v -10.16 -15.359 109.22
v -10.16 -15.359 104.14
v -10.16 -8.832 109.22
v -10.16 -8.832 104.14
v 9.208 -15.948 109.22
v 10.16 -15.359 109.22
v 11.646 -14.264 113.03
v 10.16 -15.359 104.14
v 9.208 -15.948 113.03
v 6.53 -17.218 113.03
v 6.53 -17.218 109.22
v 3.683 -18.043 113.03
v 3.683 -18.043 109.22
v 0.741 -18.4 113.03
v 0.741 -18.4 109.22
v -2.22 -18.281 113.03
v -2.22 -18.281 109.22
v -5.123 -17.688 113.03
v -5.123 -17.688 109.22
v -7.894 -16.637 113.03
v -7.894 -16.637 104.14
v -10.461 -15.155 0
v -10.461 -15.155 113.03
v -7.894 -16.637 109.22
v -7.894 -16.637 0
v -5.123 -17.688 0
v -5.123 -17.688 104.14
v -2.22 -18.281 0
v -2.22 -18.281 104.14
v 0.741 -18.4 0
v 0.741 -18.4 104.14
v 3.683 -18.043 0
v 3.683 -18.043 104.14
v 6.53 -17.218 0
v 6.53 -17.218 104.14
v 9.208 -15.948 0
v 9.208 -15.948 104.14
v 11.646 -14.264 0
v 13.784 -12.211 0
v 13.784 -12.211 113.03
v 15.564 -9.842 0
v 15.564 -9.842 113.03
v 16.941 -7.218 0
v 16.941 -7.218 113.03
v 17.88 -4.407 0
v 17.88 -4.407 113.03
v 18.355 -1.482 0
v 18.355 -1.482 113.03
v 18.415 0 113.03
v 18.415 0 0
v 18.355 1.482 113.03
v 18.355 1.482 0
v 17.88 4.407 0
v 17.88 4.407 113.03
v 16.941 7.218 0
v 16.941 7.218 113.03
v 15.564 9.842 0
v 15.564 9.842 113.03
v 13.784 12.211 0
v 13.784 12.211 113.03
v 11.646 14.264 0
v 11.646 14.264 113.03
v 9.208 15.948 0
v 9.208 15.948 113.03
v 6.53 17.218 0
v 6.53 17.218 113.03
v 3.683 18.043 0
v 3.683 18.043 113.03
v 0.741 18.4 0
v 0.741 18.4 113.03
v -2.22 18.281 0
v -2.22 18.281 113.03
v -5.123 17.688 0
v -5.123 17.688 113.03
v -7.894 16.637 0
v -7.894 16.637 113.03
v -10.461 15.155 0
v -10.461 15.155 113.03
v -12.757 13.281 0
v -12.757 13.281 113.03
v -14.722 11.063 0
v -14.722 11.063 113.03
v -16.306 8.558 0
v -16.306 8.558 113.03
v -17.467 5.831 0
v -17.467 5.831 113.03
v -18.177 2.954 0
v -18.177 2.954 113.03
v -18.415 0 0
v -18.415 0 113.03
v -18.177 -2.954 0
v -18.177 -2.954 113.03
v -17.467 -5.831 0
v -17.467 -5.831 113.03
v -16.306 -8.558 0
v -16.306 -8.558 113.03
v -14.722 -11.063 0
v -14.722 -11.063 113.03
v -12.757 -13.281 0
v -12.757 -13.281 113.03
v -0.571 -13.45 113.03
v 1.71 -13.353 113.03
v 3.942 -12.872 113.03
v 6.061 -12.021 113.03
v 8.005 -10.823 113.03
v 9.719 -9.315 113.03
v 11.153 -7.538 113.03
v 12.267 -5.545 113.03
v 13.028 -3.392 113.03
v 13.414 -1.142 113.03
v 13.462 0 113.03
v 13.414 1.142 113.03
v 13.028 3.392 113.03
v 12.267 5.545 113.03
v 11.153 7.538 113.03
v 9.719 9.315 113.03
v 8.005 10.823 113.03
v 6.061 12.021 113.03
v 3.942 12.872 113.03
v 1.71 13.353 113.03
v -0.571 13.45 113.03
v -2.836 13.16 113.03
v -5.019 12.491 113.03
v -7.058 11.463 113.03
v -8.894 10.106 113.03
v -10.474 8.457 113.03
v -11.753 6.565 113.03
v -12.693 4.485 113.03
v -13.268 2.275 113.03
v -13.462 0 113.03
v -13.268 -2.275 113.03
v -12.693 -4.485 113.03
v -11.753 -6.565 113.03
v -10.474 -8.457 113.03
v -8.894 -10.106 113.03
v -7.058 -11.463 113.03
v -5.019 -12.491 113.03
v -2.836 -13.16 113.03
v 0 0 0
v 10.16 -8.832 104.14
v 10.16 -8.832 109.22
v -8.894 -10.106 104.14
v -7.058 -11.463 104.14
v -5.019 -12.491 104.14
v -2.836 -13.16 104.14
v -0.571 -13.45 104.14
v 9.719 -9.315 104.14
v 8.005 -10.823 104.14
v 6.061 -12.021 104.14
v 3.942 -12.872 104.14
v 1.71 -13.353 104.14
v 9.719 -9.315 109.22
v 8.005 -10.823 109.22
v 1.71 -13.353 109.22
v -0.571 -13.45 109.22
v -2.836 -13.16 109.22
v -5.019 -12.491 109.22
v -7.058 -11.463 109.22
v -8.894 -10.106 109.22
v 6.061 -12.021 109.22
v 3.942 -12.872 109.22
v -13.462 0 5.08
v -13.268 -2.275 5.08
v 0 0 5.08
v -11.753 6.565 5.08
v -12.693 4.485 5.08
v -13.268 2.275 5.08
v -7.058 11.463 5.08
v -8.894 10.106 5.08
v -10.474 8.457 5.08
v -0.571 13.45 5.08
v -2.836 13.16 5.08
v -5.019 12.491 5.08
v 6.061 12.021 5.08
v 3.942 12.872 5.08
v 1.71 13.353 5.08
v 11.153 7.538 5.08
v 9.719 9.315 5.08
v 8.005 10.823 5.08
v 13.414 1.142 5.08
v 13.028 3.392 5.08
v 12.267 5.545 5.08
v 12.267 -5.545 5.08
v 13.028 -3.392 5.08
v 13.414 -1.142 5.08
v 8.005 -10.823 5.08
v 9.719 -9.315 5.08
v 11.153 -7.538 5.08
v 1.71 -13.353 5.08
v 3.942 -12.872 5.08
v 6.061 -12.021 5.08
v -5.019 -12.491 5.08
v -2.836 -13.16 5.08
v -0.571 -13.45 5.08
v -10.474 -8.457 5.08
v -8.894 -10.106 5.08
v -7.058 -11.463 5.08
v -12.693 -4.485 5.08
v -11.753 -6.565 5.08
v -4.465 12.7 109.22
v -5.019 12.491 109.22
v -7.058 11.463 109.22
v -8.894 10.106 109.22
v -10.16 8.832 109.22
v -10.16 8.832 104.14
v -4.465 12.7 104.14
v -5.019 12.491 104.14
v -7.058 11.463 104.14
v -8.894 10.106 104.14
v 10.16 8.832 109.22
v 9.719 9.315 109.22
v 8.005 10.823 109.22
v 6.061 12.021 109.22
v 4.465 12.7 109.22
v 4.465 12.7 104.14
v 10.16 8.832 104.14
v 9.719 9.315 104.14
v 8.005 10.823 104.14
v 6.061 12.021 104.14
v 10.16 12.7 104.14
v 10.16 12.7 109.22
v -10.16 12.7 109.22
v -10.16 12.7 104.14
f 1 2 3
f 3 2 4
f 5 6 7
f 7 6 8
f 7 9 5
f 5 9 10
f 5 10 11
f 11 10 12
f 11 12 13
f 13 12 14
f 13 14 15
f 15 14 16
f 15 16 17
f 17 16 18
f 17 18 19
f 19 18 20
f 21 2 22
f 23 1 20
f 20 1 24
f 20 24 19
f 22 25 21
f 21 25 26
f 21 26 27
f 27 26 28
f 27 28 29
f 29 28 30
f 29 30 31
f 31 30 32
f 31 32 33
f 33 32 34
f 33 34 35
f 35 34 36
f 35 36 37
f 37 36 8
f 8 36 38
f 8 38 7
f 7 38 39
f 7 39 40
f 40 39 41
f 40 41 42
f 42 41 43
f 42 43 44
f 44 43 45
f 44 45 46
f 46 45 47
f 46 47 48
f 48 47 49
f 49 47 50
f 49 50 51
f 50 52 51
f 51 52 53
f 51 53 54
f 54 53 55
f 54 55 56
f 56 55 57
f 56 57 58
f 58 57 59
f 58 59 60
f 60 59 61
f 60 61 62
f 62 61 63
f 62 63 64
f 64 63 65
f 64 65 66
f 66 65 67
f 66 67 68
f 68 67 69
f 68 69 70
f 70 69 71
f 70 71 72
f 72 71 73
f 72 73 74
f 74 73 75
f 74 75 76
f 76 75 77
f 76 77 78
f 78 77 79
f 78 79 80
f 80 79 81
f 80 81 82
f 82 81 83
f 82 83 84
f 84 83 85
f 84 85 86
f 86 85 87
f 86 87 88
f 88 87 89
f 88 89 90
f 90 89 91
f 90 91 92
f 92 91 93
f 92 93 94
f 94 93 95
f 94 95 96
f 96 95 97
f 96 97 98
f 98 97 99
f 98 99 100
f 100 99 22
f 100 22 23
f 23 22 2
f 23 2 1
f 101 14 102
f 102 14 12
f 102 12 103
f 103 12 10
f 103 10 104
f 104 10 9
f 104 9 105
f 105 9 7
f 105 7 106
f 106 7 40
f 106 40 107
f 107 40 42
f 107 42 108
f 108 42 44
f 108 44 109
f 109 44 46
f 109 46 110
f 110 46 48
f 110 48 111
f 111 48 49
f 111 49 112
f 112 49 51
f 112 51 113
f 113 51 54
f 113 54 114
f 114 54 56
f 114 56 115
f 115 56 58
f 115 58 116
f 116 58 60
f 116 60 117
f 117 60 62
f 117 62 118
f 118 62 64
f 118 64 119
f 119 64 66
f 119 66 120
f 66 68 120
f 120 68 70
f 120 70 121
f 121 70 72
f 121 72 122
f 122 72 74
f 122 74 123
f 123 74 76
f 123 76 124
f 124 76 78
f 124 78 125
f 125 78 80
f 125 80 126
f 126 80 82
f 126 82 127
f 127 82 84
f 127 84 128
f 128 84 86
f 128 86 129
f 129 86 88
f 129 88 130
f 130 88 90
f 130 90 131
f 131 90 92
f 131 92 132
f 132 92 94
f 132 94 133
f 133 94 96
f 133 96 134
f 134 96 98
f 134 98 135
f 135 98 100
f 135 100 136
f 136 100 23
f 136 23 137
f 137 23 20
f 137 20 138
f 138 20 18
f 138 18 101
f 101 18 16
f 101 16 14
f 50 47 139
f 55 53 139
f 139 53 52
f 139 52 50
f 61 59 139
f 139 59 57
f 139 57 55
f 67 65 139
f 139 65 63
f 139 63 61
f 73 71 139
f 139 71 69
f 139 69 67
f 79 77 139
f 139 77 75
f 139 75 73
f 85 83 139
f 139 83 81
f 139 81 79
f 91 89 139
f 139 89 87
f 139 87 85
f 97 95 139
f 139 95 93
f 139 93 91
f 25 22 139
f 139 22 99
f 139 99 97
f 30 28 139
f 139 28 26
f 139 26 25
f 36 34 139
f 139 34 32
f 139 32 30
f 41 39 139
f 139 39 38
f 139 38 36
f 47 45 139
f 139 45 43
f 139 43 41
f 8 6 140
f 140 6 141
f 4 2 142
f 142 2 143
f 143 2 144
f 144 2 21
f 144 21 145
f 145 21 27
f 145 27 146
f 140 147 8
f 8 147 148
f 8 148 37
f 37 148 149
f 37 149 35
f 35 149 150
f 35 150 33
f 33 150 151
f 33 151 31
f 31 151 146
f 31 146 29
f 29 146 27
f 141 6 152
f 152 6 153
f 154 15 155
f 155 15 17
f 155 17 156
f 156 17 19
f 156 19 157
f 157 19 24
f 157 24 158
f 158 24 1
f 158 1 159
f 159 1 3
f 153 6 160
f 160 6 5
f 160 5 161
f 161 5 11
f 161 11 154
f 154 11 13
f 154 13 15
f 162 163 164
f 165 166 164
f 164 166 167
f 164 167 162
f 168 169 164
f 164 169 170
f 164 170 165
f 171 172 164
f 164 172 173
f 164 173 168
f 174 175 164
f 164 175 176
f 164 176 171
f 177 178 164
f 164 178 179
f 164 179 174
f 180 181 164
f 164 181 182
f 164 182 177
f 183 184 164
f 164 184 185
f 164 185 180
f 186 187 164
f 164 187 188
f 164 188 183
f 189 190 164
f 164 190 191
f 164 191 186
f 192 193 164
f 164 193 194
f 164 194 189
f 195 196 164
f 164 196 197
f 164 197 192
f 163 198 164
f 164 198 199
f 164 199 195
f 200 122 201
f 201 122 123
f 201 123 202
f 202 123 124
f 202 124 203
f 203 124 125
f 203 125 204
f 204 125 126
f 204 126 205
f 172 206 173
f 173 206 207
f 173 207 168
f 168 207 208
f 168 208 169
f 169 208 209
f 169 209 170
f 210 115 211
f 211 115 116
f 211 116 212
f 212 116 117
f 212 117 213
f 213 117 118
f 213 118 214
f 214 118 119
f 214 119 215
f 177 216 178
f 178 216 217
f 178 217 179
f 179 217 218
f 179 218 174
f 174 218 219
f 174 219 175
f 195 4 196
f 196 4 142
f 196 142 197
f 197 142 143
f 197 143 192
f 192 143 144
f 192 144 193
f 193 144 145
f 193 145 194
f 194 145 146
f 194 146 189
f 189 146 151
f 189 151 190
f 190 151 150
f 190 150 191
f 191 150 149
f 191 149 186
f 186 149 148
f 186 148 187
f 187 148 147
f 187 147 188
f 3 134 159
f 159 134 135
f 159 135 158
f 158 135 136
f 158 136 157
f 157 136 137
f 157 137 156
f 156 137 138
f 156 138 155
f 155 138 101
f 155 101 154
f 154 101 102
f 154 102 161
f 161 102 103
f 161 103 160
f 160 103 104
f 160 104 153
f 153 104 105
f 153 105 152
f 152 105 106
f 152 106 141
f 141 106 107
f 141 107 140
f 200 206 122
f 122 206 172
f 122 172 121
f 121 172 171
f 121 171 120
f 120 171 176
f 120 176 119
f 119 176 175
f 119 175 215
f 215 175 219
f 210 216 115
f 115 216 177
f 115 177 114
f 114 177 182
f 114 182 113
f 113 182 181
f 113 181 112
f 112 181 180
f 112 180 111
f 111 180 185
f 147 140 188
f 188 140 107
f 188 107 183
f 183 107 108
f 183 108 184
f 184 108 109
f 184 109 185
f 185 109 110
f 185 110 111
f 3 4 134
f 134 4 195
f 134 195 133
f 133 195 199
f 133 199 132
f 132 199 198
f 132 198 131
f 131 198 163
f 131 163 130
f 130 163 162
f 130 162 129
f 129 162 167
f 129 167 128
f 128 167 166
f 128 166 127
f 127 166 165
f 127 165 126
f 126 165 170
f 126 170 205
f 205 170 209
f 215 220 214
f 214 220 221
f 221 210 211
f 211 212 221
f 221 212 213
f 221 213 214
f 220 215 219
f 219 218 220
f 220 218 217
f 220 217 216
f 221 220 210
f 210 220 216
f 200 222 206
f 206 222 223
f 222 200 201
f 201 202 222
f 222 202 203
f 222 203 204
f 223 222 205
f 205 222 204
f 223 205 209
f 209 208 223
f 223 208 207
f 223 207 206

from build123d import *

# Parameters (mm, degrees)
SKETCH1_R               = 18.415
BOSS_EXTRUDE2_DEPTH     = 113.03
SKETCH4_W               = 20.32
SKETCH4_H               = 5.08
CUT_EXTRUDE2_DEPTH      = 12.7
CUT_EXTRUDE2_DEPTH_BACK = 22.86
CUT_EXTRUDE3_START      = -5.08
SKETCH5_R               = 13.462
CUT_EXTRUDE3_DEPTH      = 107.95


with BuildPart() as part:
    # Sketch1 → Boss-Extrude2 (new body)
    with BuildSketch(Plane.XY):
        Circle(SKETCH1_R)
    extrude(amount=BOSS_EXTRUDE2_DEPTH)

    # Sketch4 → Cut-Extrude2 (cut, two sides)
    with BuildSketch(Plane(origin=(0, 0, 0), x_dir=(1, 0, 0), z_dir=(0, 1, 0))) as cut_extrude2_sk:
        with Locations((0, -106.68)):
            Rectangle(SKETCH4_W, SKETCH4_H)
    extrude(amount=CUT_EXTRUDE2_DEPTH, mode=Mode.SUBTRACT)
    extrude(cut_extrude2_sk.sketch, amount=-CUT_EXTRUDE2_DEPTH_BACK, mode=Mode.SUBTRACT)

    # Sketch5 → Cut-Extrude3 (cut)
    with BuildSketch(Plane(origin=(0, 0, 0), x_dir=(-1, 0, 0), z_dir=(0, 0, -1)).offset(CUT_EXTRUDE3_START)):
        Circle(SKETCH5_R)
    extrude(amount=-CUT_EXTRUDE3_DEPTH, mode=Mode.SUBTRACT)


solid = part.part
